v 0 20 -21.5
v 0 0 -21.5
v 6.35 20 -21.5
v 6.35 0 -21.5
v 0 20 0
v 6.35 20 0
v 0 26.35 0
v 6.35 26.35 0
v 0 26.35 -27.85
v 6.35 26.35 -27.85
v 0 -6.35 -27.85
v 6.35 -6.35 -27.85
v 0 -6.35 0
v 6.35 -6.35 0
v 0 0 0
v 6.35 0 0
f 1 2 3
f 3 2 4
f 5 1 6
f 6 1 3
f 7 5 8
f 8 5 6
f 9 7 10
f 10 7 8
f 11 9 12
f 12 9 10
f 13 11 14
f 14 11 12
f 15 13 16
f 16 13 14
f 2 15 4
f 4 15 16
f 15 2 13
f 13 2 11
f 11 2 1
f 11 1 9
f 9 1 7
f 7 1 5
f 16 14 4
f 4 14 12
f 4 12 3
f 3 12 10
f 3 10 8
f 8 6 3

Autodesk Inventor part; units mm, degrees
ref_plane "YZ Plane" through (0, 0, 0) normal (1, 0, 0) x (0, 1, 0)
ref_plane "XZ Plane" through (0, 0, 0) normal (0, 1, 0) x (-1, 0, 0)
ref_plane "XY Plane" through (0, 0, 0) normal (0, 0, 1) x (1, 0, 0)
sketch "Sketch1" plane through (0, 0, 0) normal (1, 0, 0) x (0, 1, 0)
  line L0 (0, 0) -> (20, 0) construction
  line L1 (20, 0) -> (20, -21.5)
  line L2 (20, -21.5) -> (0, -21.5)
  line L3 (0, -21.5) -> (0, 0)
  line L4 (20, 0) -> (26.35, 0)
  line L5 (26.35, 0) -> (26.35, -27.85)
  line L6 (-6.35, -27.85) -> (-6.35, 0)
  line L7 (-6.35, 0) -> (0, 0)
  line L8 (26.35, -27.85) -> (-6.35, -27.85)
  dimension "d0" = 20
  dimension "d1" = 21.5
  dimension "d4" = 6.35
  dimension "d23" = 6.35
  dimension "d24" = 6.35
extrude "Extrusion1" add sketch "Sketch1" along normal blind 6.35
properties part number "Main"
